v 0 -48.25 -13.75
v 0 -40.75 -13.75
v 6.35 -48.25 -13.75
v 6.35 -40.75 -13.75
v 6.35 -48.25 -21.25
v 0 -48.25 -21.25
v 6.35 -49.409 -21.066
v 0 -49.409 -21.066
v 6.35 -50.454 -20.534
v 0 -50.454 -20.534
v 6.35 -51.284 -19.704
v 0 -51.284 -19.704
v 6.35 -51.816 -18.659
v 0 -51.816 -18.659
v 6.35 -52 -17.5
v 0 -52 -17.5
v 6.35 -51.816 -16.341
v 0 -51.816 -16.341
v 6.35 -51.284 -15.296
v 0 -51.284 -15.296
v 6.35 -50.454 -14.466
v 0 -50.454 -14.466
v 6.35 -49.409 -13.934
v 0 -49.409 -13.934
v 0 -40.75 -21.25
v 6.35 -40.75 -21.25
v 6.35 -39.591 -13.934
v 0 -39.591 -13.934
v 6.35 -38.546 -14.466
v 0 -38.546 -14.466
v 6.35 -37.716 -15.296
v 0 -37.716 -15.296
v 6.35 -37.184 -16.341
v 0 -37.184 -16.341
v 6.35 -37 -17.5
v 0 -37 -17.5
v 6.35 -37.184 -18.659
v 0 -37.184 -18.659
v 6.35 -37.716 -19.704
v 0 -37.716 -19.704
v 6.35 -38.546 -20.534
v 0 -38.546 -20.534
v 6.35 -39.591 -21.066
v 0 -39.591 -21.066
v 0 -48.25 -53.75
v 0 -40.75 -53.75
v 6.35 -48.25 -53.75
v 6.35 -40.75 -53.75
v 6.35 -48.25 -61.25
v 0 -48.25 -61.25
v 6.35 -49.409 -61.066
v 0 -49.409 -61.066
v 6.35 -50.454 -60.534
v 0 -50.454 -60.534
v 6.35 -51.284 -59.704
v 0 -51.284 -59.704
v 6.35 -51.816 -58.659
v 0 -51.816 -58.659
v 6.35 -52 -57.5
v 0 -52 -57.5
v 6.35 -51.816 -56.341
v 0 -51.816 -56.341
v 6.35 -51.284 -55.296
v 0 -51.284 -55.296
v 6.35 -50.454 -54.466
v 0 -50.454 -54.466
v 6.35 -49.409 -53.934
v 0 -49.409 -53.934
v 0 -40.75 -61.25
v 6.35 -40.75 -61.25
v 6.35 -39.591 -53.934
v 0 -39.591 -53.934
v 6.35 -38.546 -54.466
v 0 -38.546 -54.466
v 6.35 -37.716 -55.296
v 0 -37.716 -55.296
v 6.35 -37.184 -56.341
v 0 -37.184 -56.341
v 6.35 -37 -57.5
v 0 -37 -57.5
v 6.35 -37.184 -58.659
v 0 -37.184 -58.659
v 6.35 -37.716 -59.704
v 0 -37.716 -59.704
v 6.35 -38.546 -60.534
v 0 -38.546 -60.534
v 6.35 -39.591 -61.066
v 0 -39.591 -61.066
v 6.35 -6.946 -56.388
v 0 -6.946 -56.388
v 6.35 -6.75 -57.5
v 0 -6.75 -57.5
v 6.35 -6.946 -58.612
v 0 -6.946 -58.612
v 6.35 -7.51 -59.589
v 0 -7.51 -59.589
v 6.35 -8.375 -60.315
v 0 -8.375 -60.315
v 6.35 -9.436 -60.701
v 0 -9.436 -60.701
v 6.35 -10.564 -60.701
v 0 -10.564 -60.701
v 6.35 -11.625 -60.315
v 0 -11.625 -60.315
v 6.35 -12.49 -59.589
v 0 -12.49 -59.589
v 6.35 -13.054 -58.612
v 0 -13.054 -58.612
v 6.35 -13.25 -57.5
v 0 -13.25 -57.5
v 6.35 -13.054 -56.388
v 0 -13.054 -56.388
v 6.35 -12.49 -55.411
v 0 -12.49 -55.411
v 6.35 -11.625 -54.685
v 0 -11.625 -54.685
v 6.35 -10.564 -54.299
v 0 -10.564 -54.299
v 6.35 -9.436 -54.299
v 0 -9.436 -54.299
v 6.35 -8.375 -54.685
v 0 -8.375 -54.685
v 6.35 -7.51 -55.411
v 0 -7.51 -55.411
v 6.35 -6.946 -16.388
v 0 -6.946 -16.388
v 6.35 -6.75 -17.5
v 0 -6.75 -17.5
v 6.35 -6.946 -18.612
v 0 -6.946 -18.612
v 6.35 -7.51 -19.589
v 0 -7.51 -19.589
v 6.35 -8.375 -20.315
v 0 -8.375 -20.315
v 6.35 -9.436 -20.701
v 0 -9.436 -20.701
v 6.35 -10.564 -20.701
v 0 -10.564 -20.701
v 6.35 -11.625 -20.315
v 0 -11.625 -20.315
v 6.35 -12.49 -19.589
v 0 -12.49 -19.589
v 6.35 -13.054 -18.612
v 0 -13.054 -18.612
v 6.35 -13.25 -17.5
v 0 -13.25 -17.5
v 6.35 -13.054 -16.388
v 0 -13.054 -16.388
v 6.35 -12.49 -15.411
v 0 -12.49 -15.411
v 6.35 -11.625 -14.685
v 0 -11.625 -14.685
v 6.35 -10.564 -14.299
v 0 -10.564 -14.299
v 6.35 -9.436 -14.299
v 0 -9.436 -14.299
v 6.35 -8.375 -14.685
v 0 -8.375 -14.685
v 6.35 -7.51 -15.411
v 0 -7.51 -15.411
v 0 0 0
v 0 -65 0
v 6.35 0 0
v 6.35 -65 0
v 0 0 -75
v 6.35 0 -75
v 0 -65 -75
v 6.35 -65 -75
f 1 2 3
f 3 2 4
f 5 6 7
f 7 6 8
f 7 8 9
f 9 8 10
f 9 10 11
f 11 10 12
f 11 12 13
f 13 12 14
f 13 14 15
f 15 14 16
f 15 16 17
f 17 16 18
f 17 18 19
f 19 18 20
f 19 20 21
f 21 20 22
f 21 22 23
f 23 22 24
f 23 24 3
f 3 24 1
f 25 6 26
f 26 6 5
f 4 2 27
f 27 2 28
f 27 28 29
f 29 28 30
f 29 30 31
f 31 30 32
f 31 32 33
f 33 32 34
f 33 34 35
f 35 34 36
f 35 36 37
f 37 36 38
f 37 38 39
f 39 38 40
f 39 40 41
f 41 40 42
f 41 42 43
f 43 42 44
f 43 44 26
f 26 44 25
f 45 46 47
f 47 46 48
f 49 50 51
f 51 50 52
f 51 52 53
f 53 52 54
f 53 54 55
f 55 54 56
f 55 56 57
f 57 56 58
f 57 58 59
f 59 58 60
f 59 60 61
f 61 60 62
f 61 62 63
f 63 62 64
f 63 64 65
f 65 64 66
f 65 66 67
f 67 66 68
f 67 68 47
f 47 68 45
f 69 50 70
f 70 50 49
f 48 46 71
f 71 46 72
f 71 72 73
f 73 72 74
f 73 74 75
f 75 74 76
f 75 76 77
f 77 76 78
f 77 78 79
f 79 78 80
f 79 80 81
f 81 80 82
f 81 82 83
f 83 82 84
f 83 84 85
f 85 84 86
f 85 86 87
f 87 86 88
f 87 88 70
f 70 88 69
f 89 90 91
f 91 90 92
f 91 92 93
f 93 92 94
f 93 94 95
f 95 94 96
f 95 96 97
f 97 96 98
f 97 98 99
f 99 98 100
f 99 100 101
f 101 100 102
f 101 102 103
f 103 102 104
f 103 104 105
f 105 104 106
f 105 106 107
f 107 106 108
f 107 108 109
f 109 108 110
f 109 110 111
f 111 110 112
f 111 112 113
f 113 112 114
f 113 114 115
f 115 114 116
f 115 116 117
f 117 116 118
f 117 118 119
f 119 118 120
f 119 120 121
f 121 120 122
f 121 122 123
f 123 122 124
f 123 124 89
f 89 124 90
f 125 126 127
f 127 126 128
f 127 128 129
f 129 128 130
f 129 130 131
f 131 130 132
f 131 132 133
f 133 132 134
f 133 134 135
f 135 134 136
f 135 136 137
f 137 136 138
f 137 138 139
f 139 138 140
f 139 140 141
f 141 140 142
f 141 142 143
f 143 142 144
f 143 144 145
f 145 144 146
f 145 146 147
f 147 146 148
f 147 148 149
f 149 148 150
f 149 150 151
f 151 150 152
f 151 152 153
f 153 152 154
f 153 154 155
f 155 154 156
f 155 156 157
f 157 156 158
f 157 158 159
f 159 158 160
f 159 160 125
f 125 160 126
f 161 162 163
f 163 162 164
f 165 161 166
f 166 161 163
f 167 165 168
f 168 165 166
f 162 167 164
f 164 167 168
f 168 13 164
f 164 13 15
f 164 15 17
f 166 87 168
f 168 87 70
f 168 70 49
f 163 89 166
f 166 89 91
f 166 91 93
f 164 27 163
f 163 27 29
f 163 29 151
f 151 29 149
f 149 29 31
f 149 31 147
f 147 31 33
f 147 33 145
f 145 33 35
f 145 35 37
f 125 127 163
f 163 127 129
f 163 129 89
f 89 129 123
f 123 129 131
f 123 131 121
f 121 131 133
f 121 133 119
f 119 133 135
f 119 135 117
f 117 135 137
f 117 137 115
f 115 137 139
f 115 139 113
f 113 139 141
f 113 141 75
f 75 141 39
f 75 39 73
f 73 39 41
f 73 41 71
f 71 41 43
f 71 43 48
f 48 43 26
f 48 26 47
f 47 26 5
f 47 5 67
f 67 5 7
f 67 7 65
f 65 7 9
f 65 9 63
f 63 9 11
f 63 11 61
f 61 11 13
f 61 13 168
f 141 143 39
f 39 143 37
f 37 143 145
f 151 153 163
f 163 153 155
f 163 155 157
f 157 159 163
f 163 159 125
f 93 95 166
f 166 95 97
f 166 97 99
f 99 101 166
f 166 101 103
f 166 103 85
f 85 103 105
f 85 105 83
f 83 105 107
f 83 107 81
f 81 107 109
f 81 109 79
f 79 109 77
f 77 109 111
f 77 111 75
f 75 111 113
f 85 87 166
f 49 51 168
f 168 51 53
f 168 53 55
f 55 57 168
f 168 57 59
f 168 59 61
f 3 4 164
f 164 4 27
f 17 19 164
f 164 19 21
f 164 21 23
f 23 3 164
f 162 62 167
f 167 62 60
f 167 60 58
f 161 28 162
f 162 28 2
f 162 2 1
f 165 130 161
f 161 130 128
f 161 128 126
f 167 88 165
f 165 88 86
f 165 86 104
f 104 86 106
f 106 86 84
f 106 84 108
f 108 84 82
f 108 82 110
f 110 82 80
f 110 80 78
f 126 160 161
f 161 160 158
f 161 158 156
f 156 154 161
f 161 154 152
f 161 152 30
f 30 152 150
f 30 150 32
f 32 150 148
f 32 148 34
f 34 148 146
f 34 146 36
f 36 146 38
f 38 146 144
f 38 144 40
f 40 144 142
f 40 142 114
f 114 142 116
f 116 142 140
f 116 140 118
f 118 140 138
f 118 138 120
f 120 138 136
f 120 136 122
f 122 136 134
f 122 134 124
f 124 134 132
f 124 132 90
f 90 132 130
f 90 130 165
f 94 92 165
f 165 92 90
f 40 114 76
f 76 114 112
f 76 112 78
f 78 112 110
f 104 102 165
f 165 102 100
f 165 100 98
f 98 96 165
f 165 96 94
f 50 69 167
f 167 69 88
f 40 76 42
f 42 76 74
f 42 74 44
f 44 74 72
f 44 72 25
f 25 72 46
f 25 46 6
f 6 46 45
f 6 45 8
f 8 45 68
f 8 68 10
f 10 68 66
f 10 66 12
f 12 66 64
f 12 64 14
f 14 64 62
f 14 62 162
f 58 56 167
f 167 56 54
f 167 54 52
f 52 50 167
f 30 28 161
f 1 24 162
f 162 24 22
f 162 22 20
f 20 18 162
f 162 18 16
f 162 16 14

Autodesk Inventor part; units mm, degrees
ref_plane "YZ Plane" through (0, 0, 0) normal (1, 0, 0) x (0, 1, 0)
ref_plane "XZ Plane" through (0, 0, 0) normal (0, 1, 0) x (-1, 0, 0)
ref_plane "XY Plane" through (0, 0, 0) normal (0, 0, 1) x (1, 0, 0)
sketch "Sketch1" plane through (0, 0, 0) normal (1, 0, 0) x (0, 1, 0)
  line L0 (0, 0) -> (-65, 0)
  line L1 (-65, 0) -> (-65, -75)
  line L2 (-65, -75) -> (0, -75)
  line L3 (0, -75) -> (0, 0)
  line L4 (-40.75, -13.75) -> (-48.25, -13.75)
  line L5 (-48.25, -13.75) -> (-48.25, -21.25)
  line L6 (-48.25, -21.25) -> (-40.75, -21.25)
  line L7 (-40.75, -21.25) -> (-40.75, -13.75)
  arc A0 (-40.75, -21.25) -> (-40.75, -13.75) centre (-40.75, -17.5) ccw
  arc A1 (-48.25, -13.75) -> (-48.25, -21.25) centre (-48.25, -17.5) ccw
  line L8 (-40.75, -53.75) -> (-48.25, -53.75)
  line L9 (-48.25, -53.75) -> (-48.25, -61.25)
  line L10 (-48.25, -61.25) -> (-40.75, -61.25)
  line L11 (-40.75, -61.25) -> (-40.75, -53.75)
  arc A2 (-40.75, -61.25) -> (-40.75, -53.75) centre (-40.75, -57.5) ccw
  arc A3 (-48.25, -53.75) -> (-48.25, -61.25) centre (-48.25, -57.5) ccw
  circle A4 centre (-10, -17.5) radius 3.25
  circle A5 centre (-10, -57.5) radius 3.25
  dimension "d1" = 75
  dimension "d4" = 7.5
  dimension "d5" = 7.5
  dimension "d8" = 13.75
  dimension "d10" = 40
  dimension "d15" = 10
  dimension "d16" = 6.5
  dimension "d17" = 6.5
  dimension "d18" = 30.75
  dimension "d19" = 65
  dimension "d20" = 7.5
extrude "Extrusion1" add sketch "Sketch1" along normal blind 6.35
equation "\"d5\" = d4"
equation "\"d8\" = -0.5 * d4 + 0.5 * d1 - 0.5 * d10"
equation "\"d17\" = d16"
properties part number "mounting bracket 1"
